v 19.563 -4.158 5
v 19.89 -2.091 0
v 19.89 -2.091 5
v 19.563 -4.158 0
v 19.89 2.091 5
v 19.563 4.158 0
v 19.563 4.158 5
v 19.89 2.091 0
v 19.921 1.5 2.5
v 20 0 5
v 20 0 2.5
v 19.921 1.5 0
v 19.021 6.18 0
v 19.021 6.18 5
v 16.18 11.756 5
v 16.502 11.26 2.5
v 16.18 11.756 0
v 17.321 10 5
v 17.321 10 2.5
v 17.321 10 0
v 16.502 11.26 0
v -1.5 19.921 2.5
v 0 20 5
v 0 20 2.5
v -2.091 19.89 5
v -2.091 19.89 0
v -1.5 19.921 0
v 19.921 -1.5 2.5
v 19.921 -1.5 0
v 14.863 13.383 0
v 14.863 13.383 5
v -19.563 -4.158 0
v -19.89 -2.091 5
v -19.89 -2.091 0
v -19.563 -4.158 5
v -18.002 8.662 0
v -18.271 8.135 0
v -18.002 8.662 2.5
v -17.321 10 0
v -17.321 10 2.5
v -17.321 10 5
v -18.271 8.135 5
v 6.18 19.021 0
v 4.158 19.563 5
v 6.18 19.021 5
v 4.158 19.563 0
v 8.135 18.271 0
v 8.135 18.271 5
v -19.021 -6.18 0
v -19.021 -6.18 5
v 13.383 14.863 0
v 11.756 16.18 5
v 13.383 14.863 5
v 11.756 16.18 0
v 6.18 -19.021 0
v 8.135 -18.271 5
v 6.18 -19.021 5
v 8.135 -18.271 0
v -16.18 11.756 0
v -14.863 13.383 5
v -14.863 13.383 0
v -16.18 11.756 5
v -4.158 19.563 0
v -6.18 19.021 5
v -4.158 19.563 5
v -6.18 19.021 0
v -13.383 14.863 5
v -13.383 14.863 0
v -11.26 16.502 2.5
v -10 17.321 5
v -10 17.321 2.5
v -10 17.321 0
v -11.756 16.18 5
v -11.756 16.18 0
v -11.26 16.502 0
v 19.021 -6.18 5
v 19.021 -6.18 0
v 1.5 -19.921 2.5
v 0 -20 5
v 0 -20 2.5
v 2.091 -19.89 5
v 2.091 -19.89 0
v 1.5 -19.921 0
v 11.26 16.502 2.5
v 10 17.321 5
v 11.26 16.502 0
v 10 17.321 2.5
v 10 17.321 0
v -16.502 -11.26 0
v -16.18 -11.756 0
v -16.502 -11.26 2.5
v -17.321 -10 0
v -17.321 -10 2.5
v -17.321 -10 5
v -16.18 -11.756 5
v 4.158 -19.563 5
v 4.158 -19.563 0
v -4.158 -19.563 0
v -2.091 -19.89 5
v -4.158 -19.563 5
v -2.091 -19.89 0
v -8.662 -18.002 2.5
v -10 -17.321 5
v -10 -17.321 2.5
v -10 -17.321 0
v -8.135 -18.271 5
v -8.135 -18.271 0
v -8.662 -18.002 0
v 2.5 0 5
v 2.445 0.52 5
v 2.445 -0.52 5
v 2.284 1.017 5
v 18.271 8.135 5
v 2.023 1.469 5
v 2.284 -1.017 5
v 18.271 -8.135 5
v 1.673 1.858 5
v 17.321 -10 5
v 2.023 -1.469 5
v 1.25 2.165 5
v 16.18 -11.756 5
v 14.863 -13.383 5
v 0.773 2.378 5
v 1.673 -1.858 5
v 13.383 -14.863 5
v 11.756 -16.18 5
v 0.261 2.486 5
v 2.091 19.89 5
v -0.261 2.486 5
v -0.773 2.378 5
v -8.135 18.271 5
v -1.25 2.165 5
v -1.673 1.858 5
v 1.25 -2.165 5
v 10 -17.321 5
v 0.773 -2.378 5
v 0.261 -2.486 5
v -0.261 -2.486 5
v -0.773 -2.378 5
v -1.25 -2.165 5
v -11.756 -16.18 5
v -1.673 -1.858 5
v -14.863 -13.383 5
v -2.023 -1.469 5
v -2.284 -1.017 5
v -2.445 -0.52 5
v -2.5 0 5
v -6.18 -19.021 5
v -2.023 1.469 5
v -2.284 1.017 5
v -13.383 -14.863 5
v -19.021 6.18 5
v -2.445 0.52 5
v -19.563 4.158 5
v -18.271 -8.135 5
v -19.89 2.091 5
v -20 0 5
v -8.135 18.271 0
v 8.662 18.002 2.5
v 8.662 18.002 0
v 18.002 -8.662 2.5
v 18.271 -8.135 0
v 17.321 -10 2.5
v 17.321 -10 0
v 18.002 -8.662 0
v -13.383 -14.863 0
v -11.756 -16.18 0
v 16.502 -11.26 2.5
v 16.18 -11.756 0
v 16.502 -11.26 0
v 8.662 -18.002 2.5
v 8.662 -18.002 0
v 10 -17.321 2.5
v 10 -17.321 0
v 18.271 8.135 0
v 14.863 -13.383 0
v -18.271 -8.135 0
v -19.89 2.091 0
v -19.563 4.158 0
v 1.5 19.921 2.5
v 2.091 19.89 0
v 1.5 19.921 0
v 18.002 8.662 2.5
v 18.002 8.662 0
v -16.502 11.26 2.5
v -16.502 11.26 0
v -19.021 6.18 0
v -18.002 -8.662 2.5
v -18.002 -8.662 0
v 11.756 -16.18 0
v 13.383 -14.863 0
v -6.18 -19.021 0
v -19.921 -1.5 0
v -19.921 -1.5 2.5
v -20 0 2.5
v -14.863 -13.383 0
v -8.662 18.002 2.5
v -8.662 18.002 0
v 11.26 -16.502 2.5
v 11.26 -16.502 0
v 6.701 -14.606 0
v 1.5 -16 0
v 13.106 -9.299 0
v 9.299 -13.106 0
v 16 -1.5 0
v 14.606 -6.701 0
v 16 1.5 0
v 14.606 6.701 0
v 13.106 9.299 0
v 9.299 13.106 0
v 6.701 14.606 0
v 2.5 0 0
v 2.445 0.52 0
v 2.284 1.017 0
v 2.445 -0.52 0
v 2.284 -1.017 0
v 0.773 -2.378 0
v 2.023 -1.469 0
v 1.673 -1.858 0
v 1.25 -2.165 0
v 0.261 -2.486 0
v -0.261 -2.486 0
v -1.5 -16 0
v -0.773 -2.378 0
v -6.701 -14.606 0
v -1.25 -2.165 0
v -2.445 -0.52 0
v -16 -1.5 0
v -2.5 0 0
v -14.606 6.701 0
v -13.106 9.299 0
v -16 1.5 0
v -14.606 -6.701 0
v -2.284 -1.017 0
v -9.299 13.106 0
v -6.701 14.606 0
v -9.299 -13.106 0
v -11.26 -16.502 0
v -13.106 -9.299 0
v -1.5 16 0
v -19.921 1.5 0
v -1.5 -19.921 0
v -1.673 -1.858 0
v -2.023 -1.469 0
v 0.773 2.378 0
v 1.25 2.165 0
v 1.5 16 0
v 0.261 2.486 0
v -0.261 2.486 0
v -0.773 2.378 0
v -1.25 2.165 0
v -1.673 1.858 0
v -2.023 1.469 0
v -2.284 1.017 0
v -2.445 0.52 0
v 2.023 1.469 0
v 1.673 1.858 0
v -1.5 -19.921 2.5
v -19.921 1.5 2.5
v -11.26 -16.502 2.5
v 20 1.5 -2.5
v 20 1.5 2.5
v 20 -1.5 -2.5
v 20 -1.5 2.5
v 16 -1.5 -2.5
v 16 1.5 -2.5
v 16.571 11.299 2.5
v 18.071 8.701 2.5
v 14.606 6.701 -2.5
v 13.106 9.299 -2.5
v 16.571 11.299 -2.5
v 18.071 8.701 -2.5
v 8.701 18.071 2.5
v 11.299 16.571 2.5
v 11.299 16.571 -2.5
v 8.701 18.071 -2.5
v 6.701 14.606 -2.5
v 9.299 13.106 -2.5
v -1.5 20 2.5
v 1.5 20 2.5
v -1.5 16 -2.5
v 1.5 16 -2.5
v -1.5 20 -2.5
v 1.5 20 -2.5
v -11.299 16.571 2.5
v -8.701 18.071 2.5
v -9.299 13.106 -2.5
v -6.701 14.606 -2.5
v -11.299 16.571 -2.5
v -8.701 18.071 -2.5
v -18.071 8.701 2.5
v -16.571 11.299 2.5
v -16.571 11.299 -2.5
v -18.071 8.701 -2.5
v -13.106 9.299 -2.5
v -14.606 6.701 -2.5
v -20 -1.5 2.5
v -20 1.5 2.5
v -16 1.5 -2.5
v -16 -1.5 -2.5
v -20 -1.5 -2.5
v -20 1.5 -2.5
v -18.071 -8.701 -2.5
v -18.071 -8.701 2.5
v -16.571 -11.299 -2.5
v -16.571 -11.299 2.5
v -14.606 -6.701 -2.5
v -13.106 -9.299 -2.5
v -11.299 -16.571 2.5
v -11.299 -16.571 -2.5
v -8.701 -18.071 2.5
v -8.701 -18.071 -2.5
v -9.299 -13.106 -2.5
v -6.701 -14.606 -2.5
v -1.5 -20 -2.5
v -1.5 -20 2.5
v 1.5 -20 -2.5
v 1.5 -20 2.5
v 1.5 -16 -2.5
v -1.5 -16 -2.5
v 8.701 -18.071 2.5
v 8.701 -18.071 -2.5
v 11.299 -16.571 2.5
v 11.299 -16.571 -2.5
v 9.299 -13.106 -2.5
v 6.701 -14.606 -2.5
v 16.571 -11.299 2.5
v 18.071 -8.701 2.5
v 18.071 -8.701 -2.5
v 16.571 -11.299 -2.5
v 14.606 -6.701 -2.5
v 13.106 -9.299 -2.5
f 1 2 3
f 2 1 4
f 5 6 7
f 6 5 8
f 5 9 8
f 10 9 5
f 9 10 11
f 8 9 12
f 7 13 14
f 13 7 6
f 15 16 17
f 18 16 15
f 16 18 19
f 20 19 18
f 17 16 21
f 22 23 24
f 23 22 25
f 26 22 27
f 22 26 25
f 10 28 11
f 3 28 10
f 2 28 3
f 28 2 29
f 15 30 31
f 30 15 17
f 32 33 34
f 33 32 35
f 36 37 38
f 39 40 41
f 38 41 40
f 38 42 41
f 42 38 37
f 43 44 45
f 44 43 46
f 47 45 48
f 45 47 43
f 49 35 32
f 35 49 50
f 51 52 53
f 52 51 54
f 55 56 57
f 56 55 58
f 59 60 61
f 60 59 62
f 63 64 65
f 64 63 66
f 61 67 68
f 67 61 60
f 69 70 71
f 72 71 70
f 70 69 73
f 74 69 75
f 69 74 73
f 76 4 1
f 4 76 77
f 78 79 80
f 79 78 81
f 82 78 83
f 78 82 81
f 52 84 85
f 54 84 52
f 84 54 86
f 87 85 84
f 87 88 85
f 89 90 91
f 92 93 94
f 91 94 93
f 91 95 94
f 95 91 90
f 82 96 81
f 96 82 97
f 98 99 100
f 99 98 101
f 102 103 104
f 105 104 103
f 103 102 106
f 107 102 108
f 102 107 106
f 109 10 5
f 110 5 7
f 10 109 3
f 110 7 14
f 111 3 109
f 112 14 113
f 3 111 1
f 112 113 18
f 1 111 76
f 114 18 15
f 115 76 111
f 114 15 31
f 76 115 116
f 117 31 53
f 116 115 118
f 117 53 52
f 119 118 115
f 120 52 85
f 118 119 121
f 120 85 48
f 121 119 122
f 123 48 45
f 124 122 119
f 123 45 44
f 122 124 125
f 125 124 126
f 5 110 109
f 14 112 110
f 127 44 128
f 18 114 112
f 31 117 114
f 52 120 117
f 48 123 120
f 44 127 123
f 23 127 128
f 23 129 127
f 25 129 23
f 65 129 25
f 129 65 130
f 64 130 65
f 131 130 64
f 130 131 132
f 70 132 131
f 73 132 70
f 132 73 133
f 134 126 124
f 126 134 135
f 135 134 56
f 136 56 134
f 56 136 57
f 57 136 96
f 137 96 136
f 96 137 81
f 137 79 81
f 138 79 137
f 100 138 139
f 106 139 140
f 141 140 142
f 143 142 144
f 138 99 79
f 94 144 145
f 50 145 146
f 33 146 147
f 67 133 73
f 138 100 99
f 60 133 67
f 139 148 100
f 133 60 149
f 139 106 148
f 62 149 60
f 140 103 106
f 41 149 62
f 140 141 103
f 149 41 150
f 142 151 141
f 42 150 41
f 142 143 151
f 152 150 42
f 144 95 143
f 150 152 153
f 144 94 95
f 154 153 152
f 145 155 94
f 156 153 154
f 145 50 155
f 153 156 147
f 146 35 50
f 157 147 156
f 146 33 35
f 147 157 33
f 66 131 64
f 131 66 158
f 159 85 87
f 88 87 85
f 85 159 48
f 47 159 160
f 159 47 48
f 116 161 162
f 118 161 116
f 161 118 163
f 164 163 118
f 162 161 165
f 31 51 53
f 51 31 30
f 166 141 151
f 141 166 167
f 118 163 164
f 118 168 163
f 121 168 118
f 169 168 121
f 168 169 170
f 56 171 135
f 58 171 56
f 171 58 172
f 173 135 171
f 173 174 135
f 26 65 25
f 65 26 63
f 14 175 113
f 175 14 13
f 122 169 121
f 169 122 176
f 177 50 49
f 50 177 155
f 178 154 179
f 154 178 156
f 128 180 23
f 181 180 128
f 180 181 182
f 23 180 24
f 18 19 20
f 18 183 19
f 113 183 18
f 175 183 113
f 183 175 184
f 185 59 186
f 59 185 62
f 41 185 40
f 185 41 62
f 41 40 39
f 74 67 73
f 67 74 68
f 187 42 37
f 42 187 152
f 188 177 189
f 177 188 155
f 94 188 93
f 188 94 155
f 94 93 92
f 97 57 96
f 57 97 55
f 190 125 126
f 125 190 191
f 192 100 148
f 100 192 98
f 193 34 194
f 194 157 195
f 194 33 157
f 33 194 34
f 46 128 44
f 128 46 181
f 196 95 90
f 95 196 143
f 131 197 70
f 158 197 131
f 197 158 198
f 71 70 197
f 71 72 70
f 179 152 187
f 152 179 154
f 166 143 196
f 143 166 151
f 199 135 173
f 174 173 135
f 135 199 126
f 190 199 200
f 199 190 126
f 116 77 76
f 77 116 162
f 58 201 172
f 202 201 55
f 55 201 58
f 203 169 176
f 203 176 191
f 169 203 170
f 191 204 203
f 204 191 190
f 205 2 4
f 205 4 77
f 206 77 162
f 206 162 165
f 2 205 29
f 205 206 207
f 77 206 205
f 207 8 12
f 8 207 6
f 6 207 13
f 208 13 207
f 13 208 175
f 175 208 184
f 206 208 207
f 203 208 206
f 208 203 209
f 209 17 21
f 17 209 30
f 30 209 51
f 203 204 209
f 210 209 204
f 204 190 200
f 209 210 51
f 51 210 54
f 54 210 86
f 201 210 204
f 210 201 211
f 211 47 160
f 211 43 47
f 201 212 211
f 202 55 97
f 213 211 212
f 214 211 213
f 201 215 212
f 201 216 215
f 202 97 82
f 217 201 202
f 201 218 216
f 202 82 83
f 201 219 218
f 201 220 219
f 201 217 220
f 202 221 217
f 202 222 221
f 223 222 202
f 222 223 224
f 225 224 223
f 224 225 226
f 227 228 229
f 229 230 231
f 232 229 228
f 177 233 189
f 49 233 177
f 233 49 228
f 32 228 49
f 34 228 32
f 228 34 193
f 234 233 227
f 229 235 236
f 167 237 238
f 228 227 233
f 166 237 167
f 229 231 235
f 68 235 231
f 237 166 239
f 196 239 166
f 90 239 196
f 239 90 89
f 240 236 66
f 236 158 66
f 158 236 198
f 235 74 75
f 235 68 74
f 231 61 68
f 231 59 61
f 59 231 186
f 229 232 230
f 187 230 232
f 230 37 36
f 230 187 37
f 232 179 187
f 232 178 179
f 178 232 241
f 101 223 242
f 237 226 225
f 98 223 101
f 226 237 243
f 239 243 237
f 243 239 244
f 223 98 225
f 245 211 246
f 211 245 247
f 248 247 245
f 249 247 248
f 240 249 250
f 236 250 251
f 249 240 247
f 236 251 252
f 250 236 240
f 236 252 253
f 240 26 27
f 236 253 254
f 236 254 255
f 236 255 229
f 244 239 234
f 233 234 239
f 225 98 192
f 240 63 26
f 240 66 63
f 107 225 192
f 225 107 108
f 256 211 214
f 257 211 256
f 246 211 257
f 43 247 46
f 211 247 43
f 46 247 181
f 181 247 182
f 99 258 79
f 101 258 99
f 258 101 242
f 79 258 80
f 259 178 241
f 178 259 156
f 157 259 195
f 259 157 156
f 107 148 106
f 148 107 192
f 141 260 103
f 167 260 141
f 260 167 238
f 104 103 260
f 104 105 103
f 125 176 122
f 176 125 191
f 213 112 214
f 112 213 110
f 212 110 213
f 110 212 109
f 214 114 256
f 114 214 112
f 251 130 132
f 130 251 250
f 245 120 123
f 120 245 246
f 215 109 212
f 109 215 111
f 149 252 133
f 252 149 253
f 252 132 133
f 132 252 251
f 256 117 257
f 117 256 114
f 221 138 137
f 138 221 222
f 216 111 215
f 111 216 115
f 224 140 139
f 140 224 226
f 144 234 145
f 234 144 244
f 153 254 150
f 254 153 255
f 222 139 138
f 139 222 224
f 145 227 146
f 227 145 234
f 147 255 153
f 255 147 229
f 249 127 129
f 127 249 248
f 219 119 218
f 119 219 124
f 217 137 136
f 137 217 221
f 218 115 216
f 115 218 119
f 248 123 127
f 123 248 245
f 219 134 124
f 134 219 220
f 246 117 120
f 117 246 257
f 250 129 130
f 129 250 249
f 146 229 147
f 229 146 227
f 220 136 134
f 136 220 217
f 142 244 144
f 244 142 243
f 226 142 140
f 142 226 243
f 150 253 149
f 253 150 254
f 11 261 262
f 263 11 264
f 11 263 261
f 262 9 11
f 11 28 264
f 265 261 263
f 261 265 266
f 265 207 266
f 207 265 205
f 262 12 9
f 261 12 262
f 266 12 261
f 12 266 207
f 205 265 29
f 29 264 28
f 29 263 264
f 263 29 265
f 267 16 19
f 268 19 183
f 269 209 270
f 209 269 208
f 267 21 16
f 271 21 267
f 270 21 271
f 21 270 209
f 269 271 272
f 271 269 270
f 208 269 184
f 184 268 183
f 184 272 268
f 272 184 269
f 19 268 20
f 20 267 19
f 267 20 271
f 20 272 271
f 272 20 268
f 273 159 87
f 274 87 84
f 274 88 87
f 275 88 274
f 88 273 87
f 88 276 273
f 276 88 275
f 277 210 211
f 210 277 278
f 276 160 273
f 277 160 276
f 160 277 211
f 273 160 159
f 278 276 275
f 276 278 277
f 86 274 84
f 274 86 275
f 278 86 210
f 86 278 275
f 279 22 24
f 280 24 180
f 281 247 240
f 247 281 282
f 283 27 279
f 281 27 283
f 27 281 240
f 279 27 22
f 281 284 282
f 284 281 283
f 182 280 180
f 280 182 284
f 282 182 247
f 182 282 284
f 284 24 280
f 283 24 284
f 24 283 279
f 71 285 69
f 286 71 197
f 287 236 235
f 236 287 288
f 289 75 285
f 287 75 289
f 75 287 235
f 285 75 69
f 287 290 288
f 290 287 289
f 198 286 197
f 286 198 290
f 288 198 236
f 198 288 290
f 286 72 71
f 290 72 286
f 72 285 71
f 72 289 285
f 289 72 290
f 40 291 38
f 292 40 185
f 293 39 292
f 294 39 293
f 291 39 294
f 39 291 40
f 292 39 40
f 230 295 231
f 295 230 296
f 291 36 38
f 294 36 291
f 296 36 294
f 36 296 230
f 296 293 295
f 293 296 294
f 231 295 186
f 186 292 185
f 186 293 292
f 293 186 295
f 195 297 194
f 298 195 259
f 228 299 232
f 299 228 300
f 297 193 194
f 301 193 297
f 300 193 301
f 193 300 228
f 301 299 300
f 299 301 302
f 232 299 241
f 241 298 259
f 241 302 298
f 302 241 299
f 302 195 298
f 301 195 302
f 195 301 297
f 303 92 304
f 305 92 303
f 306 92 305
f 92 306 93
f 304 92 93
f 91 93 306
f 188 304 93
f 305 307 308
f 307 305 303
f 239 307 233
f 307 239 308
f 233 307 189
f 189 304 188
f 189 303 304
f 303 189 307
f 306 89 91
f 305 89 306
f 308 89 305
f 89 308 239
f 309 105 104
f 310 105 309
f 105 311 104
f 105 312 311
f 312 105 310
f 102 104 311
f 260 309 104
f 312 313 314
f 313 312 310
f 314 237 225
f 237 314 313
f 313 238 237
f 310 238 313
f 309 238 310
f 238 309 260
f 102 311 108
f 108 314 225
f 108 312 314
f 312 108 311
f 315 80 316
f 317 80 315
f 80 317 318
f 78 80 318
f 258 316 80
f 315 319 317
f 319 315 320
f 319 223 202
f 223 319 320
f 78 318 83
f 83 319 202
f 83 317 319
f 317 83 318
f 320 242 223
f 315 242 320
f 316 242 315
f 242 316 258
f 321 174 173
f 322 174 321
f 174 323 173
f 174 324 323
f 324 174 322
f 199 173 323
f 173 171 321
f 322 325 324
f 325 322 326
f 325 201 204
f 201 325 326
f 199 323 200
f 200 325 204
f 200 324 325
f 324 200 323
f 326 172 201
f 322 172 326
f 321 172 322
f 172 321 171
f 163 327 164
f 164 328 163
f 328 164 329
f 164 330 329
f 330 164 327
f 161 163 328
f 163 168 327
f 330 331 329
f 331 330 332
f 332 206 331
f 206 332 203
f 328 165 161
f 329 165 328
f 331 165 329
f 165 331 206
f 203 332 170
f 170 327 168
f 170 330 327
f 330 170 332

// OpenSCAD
// Engrenagem simples - Diâmetro: 40mm, 12 dentes
module engrenagem_simples() {
    color("Yellow")
    difference() {
        // Corpo principal da engrenagem
        cylinder(h=5, r=20, $fn=60);
        
        // Furo central (eixo de 5mm)
        cylinder(h=5, r=2.5, $fn=30);
    }
    
    // Dentes (simplificado)
    for (i = [0:11]) {
        rotate([0, 0, i * 30])
        translate([18, 0, 0])
        cube([4, 3, 5], center=true);
    }
}

engrenagem_simples();
